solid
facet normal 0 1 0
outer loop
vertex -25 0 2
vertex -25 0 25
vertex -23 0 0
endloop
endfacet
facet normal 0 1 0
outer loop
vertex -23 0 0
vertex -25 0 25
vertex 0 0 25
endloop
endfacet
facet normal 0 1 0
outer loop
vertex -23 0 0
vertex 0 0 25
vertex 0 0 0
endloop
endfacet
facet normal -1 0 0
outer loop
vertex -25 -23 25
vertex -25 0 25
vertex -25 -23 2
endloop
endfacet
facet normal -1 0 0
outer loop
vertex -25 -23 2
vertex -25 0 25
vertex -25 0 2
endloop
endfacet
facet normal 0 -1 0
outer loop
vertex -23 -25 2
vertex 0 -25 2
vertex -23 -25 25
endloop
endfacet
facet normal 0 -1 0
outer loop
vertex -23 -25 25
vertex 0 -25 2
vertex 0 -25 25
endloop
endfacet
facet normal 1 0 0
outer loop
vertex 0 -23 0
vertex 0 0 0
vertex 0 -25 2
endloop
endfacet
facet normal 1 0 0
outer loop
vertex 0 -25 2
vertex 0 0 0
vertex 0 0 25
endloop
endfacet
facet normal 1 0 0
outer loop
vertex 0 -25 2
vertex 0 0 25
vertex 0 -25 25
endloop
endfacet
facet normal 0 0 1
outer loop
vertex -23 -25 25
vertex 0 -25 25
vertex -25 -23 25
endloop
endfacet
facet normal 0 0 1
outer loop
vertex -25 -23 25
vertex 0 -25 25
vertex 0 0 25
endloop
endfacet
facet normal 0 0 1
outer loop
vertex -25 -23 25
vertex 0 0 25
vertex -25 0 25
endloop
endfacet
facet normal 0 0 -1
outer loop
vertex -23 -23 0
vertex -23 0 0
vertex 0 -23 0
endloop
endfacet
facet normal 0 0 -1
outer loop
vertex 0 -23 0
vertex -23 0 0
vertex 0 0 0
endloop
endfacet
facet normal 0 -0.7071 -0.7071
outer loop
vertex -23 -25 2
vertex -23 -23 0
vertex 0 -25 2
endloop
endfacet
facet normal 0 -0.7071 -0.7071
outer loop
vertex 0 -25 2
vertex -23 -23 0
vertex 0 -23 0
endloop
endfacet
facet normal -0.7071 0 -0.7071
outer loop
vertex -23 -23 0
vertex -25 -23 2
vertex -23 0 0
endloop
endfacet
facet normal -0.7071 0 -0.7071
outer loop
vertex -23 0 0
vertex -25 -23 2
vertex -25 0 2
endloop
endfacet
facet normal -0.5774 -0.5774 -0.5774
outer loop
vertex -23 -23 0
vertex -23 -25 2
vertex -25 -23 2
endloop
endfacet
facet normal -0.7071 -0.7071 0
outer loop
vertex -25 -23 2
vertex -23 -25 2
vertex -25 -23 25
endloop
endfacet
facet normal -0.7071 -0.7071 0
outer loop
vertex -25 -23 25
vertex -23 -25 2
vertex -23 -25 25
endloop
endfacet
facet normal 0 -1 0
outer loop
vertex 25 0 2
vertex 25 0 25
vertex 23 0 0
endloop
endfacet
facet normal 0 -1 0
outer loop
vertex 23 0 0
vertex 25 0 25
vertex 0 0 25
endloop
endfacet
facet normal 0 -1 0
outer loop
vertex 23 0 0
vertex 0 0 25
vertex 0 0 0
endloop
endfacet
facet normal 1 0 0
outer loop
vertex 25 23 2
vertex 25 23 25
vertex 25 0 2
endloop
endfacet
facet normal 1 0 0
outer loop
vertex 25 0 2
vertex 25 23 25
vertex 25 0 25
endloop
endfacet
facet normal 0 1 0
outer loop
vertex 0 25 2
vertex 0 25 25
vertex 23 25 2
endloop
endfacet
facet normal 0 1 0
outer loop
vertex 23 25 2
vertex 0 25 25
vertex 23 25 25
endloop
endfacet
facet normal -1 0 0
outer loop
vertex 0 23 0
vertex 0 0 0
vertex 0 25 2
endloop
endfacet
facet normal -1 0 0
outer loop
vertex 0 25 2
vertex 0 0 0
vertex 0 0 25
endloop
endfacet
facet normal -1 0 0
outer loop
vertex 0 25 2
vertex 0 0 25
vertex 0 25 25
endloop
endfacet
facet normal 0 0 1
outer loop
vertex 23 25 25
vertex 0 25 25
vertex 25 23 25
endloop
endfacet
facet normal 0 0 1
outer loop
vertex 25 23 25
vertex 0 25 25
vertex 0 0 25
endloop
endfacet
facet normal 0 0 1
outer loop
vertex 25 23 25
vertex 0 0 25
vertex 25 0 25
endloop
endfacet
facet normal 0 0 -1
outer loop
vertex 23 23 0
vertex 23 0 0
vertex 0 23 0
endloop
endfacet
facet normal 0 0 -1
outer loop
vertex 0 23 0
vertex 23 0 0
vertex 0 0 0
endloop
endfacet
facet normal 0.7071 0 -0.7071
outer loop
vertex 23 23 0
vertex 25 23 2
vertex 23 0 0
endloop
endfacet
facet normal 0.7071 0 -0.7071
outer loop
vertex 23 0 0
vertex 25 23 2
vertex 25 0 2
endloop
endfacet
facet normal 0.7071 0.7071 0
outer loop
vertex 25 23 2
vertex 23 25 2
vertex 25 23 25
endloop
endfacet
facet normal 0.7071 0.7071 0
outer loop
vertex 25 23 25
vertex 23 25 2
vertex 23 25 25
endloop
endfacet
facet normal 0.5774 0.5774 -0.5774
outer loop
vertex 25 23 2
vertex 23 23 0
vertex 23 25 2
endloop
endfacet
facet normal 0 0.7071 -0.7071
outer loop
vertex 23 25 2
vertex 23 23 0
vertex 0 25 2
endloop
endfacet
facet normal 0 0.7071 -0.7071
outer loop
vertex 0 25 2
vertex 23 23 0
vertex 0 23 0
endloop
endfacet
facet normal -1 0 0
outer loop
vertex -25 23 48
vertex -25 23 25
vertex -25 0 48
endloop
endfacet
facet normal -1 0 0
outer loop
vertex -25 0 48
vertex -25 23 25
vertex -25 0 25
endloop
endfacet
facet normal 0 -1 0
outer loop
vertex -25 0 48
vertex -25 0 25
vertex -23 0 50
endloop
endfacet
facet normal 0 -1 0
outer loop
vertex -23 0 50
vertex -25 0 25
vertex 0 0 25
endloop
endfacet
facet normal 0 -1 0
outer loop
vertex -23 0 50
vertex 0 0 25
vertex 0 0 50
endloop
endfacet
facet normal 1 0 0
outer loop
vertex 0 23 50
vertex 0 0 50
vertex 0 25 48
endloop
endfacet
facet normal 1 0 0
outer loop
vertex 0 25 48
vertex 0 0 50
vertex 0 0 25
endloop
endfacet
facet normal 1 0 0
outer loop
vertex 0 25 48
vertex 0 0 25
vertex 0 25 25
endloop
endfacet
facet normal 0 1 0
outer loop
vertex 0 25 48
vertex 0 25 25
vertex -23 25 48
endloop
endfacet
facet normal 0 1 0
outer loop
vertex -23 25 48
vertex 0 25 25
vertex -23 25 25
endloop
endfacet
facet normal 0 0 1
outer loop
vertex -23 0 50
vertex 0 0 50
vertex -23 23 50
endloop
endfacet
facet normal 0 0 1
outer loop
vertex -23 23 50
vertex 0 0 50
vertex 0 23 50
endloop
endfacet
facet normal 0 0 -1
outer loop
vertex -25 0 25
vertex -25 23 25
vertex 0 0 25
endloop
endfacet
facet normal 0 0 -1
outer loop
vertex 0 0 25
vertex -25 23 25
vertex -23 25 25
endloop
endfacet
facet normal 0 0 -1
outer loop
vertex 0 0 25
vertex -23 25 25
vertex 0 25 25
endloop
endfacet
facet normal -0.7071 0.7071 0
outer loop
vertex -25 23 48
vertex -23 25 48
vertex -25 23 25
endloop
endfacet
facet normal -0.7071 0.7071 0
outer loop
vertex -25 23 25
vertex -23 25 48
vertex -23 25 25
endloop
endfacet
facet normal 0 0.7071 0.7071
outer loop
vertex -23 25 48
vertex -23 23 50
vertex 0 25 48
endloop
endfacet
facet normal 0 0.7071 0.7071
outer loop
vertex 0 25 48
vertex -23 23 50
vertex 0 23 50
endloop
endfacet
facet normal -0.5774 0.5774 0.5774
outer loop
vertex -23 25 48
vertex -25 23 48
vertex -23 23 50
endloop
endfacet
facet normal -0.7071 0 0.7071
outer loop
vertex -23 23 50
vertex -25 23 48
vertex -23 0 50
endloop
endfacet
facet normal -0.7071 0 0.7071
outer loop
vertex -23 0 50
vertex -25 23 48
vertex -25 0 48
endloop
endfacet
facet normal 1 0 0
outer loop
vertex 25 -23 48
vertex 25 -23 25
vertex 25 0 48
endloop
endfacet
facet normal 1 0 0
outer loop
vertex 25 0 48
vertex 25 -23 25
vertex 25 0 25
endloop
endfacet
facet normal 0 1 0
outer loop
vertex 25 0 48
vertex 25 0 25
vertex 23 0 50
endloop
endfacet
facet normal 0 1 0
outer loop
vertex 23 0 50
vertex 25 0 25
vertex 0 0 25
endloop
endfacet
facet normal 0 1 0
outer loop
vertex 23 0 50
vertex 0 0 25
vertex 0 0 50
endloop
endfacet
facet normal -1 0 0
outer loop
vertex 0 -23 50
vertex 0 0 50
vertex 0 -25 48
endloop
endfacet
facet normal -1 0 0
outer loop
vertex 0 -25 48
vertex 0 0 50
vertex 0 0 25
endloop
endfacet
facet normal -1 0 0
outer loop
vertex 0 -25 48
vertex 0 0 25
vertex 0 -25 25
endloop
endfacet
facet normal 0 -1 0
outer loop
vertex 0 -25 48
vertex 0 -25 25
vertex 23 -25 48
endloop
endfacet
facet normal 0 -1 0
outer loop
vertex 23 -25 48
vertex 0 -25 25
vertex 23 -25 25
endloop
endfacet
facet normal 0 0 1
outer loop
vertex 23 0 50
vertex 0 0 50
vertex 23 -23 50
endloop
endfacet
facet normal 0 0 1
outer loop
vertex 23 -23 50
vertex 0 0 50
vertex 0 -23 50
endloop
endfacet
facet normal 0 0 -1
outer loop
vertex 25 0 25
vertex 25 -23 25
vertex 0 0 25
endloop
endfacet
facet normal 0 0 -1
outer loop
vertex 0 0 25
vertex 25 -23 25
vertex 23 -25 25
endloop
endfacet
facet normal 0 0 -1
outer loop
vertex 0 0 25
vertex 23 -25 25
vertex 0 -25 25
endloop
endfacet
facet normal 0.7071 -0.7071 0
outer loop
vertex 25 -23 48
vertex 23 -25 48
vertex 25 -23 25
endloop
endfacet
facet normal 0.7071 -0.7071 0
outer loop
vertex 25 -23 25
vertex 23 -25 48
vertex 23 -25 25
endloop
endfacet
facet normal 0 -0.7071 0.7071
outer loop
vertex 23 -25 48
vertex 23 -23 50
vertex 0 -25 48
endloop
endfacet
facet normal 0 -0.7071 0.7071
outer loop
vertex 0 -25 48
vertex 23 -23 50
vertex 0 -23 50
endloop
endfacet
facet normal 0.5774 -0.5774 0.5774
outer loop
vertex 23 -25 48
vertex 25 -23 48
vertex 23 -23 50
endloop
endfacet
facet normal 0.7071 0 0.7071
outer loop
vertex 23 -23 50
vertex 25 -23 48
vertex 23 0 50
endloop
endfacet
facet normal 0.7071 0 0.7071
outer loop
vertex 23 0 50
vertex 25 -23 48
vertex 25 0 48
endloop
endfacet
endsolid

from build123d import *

# Parameters (mm, degrees)
SKETCH1_W             = 25
SKETCH1_H             = 25
BOSS_EXTRUDE1_DEPTH   = 25
BOSS_EXTRUDE1_2_DEPTH = 25
SKETCH2_W             = 25
SKETCH2_H             = 25
BOSS_EXTRUDE2_DEPTH   = 25
BOSS_EXTRUDE2_2_DEPTH = 25
CHAMFER1_SIZE         = 2
CHAMFER2_SIZE         = 2
CHAMFER3_SIZE         = 2
CHAMFER4_SIZE         = 2


with BuildPart() as part:
    # Sketch1 → Boss-Extrude1 (new body)
    with BuildSketch(Plane.XY):
        with Locations((-12.5, -12.5)):
            Rectangle(SKETCH1_W, SKETCH1_H)
    extrude(amount=BOSS_EXTRUDE1_DEPTH)

    # Chamfer3
    chamfer3_edges = [part.edges().sort_by_distance(p)[0] for p in [
        (-12.5, -25, 0),
        (-25, -12.5, 0),
        (-25, -25, 12.5),
    ]]
    chamfer(chamfer3_edges, length=CHAMFER3_SIZE)


with BuildPart() as body_2:
    # Sketch1 → Boss-Extrude1 2 (new body)
    with BuildSketch(Plane.XY):
        with Locations((12.5, 12.5)):
            Rectangle(SKETCH1_W, SKETCH1_H)
    extrude(amount=BOSS_EXTRUDE1_2_DEPTH)

    # Chamfer1
    chamfer1_edges = [body_2.edges().sort_by_distance(p)[0] for p in [
        (12.5, 25, 0),
        (25, 12.5, 0),
        (25, 25, 12.5),
    ]]
    chamfer(chamfer1_edges, length=CHAMFER1_SIZE)


with BuildPart() as body_3:
    # Sketch2 → Boss-Extrude2 (new body)
    with BuildSketch(Plane.XY.offset(25)):
        with Locations((-12.5, 12.5)):
            Rectangle(SKETCH2_W, SKETCH2_H)
    extrude(amount=BOSS_EXTRUDE2_DEPTH)

    # Chamfer2
    chamfer2_edges = [body_3.edges().sort_by_distance(p)[0] for p in [
        (-12.5, 25, 50),
        (-25, 12.5, 50),
        (-25, 25, 37.5),
    ]]
    chamfer(chamfer2_edges, length=CHAMFER2_SIZE)


with BuildPart() as body_4:
    # Sketch2 → Boss-Extrude2 2 (new body)
    with BuildSketch(Plane.XY.offset(25)):
        with Locations((12.5, -12.5)):
            Rectangle(SKETCH2_W, SKETCH2_H)
    extrude(amount=BOSS_EXTRUDE2_2_DEPTH)

    # Chamfer4
    chamfer4_edges = [body_4.edges().sort_by_distance(p)[0] for p in [
        (12.5, -25, 50),
        (25, -12.5, 50),
        (25, -25, 37.5),
    ]]
    chamfer(chamfer4_edges, length=CHAMFER4_SIZE)


solid = Compound([part.part, body_2.part, body_3.part, body_4.part])
